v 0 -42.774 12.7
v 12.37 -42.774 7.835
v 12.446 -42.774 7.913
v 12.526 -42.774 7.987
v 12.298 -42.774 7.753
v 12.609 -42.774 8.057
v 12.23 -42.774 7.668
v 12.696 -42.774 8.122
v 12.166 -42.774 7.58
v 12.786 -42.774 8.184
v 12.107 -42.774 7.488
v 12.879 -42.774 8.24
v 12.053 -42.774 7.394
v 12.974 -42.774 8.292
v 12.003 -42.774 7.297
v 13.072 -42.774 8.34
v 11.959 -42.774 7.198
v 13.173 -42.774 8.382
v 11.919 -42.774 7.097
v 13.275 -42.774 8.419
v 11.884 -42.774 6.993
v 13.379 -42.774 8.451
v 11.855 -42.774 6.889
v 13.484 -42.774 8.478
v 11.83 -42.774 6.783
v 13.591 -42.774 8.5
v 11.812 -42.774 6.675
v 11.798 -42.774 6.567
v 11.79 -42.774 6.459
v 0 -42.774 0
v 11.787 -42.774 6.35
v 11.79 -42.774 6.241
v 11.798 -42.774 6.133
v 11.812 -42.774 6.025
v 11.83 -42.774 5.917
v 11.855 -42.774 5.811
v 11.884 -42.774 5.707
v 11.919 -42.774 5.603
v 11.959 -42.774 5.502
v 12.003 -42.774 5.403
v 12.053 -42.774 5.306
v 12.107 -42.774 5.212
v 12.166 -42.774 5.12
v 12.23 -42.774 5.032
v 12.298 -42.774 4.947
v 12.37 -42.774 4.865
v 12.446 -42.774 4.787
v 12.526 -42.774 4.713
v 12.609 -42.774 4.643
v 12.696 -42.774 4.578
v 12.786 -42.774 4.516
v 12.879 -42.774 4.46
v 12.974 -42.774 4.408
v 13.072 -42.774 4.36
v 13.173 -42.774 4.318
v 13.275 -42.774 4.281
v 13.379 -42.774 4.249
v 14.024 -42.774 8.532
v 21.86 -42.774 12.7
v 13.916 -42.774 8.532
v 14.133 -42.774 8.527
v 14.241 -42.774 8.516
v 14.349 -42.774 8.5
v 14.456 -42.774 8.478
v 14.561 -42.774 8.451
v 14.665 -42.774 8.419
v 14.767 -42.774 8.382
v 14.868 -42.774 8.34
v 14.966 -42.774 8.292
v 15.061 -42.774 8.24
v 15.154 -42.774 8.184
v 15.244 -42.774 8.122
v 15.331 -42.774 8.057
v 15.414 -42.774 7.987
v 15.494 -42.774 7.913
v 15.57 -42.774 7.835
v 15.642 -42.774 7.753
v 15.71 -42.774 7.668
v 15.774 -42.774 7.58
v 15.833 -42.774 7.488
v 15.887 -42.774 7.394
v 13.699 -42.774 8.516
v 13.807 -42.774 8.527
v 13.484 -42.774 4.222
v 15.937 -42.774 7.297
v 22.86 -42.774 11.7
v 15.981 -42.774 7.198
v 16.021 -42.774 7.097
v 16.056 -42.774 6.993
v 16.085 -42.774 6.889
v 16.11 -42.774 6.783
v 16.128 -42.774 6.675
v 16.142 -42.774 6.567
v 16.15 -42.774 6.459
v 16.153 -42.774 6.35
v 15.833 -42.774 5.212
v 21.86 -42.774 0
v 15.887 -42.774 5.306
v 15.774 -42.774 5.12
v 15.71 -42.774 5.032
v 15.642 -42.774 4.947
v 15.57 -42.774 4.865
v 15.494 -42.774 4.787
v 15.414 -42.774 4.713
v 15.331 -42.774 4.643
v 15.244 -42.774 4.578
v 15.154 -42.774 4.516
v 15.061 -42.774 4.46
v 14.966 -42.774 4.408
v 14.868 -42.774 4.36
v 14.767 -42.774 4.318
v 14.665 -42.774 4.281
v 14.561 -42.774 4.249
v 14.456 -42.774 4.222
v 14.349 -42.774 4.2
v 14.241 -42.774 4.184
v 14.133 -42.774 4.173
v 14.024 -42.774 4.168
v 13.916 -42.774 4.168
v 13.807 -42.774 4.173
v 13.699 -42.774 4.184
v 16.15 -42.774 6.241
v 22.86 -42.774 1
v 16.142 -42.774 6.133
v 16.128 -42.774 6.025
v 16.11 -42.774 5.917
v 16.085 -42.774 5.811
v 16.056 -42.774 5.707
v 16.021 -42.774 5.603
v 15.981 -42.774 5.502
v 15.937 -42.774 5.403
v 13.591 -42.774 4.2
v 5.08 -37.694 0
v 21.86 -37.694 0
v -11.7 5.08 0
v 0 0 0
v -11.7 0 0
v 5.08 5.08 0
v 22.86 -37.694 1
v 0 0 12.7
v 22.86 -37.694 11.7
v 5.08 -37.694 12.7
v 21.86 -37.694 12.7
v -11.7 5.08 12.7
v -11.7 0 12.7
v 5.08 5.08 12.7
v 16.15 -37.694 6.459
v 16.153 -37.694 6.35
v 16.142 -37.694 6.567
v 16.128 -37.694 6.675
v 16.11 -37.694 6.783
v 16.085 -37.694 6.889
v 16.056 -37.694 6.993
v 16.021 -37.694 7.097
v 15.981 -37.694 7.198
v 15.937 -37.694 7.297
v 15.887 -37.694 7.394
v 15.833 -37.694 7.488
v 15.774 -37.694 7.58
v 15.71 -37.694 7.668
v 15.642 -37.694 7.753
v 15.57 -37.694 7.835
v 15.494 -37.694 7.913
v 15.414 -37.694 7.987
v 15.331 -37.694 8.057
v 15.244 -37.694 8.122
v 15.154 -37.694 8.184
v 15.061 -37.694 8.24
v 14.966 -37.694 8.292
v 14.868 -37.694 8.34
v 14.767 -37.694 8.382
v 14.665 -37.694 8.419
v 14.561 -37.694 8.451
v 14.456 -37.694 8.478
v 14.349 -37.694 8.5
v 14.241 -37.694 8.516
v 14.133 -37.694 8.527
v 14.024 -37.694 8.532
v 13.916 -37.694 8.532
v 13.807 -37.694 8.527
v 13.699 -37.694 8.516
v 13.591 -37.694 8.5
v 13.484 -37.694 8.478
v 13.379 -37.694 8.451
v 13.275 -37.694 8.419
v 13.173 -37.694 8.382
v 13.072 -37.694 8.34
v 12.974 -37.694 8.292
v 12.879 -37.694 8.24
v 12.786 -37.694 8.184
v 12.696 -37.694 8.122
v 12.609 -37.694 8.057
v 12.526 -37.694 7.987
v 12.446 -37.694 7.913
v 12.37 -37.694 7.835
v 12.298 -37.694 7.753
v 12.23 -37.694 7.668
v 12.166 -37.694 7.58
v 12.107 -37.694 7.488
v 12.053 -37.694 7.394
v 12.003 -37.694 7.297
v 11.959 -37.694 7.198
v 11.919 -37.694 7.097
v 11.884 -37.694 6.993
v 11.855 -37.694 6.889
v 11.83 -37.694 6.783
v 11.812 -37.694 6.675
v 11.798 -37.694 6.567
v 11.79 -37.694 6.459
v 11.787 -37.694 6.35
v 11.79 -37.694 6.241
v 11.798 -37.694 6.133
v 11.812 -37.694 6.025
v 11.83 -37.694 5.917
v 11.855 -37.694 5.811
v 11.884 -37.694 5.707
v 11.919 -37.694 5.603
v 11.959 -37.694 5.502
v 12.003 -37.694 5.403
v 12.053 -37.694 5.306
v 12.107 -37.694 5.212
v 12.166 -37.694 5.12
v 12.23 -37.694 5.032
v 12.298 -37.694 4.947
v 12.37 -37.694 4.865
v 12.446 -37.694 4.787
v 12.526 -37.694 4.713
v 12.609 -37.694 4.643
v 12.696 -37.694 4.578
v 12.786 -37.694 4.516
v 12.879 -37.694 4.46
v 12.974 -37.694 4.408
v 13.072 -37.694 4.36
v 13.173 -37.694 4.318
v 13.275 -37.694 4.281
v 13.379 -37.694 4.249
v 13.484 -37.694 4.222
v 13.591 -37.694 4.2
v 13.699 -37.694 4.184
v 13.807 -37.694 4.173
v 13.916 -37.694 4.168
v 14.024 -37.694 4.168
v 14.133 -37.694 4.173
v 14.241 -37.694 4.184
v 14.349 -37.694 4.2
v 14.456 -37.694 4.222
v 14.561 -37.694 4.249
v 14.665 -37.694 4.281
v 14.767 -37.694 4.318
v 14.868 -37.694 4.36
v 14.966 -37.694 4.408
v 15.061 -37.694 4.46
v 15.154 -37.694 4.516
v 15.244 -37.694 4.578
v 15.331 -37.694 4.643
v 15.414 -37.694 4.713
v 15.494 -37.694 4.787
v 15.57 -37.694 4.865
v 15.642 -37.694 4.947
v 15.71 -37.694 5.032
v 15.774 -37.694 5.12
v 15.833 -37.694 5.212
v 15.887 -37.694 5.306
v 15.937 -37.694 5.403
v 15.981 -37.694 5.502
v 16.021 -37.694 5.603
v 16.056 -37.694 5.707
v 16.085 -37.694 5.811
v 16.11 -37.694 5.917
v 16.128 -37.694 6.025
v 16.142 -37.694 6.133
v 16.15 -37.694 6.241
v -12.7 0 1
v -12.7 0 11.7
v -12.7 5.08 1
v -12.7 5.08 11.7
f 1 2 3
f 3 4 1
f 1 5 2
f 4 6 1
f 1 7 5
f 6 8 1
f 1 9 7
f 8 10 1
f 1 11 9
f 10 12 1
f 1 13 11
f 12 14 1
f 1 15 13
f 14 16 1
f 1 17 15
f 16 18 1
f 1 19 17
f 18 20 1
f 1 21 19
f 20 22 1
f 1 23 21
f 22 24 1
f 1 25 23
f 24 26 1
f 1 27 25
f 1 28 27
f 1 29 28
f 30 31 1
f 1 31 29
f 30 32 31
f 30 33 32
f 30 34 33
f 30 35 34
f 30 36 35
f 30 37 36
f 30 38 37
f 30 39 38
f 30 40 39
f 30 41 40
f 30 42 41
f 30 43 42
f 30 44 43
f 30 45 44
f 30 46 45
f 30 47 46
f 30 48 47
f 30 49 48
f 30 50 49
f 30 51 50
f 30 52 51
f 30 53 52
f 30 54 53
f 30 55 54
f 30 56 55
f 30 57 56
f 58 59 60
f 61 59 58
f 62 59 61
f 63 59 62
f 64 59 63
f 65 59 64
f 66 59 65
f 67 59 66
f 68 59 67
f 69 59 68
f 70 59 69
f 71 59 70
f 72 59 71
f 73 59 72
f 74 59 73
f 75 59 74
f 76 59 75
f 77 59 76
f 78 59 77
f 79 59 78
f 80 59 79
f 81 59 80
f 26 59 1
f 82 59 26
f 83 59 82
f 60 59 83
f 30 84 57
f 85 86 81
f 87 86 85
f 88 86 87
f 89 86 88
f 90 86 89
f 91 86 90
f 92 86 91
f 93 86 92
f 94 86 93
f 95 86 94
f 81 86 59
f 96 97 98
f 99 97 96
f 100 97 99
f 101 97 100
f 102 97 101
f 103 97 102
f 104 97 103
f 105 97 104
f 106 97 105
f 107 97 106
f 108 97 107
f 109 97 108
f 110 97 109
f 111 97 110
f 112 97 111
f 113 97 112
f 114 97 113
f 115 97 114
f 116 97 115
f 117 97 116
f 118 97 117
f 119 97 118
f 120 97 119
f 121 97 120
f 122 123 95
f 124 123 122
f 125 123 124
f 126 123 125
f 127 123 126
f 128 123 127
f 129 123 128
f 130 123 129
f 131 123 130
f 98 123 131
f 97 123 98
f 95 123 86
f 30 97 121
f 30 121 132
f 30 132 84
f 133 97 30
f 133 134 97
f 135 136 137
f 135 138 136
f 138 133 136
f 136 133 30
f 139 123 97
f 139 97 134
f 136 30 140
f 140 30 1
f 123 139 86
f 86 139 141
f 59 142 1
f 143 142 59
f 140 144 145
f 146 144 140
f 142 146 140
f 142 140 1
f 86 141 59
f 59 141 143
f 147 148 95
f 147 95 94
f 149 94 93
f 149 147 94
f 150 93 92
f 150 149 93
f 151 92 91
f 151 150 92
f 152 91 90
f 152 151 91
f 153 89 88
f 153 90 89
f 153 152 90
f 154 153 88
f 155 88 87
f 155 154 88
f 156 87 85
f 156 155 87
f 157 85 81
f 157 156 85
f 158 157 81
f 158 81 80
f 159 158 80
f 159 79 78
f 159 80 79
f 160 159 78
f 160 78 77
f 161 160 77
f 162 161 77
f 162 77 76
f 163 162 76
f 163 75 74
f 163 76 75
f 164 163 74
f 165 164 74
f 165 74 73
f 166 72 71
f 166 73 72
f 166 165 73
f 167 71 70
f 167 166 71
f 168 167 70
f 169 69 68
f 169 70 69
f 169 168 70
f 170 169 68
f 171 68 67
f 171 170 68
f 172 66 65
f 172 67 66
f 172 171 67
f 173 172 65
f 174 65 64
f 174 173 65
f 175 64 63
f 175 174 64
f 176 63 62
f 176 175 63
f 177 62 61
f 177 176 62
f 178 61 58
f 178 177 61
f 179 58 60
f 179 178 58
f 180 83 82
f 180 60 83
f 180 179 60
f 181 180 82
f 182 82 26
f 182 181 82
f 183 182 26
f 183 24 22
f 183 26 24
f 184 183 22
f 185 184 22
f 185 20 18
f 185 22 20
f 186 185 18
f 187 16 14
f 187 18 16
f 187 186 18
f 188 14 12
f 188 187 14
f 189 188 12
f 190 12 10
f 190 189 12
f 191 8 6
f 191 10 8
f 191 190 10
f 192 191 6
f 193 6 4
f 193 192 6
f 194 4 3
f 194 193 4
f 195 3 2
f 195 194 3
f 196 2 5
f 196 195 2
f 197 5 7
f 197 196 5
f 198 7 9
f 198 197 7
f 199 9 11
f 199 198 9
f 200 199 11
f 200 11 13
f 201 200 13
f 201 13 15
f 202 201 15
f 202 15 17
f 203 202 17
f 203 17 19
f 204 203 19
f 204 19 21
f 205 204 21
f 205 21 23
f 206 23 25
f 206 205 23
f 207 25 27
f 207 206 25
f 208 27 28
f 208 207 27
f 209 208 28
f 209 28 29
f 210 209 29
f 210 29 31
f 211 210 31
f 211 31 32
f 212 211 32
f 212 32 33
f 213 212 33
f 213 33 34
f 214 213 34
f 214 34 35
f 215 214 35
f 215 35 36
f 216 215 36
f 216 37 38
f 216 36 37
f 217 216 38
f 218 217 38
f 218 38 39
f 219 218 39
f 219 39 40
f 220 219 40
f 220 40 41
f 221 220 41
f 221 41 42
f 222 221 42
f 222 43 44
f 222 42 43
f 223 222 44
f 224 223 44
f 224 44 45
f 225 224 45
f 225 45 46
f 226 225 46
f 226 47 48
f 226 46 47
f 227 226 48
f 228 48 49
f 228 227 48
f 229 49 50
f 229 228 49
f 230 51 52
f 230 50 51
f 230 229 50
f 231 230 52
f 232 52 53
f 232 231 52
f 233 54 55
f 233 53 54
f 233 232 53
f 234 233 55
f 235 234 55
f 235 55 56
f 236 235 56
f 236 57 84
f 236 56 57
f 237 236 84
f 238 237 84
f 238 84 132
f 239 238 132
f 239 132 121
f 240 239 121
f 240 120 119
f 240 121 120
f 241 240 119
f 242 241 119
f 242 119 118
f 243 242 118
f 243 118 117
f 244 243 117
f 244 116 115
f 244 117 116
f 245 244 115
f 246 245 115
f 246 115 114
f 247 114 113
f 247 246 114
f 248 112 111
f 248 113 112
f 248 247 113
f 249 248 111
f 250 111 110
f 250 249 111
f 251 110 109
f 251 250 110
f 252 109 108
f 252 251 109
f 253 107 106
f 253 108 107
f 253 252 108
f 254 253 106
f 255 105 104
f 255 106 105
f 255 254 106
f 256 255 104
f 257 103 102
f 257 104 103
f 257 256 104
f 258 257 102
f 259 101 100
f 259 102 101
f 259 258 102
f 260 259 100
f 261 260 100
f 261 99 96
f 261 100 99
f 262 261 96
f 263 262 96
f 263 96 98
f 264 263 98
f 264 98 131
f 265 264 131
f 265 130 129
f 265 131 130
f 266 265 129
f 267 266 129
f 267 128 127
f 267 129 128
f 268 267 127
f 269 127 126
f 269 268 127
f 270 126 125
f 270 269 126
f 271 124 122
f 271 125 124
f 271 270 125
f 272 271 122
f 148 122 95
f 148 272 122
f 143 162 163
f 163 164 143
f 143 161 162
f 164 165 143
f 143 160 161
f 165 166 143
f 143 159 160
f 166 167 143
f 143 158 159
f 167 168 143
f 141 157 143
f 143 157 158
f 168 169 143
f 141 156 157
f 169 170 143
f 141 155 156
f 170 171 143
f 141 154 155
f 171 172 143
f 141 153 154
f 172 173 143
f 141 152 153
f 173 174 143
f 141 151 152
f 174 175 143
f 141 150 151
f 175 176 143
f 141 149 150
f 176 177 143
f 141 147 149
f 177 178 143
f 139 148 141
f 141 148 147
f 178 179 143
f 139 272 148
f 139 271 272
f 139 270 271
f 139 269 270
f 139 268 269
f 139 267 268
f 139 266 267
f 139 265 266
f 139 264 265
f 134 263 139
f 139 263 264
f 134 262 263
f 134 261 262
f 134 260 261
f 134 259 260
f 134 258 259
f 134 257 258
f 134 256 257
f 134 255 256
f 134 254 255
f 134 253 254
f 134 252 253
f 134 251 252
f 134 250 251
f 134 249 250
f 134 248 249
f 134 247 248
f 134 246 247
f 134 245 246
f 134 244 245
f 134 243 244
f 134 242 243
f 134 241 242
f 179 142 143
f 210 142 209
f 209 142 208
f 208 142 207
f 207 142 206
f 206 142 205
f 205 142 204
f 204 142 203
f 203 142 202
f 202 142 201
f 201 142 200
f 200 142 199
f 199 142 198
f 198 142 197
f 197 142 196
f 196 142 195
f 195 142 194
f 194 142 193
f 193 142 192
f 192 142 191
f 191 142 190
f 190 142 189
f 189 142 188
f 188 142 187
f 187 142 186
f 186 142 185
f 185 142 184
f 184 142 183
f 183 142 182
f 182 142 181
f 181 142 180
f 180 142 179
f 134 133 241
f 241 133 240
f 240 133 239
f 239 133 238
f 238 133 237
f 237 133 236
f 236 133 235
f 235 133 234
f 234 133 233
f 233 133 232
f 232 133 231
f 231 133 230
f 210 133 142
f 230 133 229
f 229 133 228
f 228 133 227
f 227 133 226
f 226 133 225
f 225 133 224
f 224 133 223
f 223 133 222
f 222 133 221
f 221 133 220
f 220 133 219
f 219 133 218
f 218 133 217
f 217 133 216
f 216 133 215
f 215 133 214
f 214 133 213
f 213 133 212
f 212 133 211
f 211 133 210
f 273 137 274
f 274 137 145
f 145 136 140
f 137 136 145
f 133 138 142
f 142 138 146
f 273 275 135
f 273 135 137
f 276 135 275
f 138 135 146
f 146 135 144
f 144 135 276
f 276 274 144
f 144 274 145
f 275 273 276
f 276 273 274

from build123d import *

# Parameters (mm, degrees)
PAD_DEPTH    = 12.7
SKETCH001_R  = 2.182812
POCKET_DEPTH = 42.7746
CHAMFER_SIZE = 1


with BuildPart() as part:
    # Sketch → Pad (new body)
    with BuildSketch(Plane.XY):
        Polygon((0, -42.7736), (22.86, -42.7736), (22.86, -37.6936), (5.08, -37.6936), (5.08, 5.08), (-12.7, 5.08), (-12.7, 0), (0, 0), align=None)
    extrude(amount=PAD_DEPTH)

    # Sketch001 → Pocket (cut, through all)
    with BuildSketch(Plane.XZ):
        with Locations((13.97, 6.35)):
            Circle(SKETCH001_R)
    extrude(amount=POCKET_DEPTH, mode=Mode.SUBTRACT)

    # Chamfer
    chamfer_edges = [part.edges().sort_by_distance(p)[0] for p in [
        (22.86, -40.2336, 0),
        (22.86, -40.2336, 12.7),
        (-12.7, 2.54, 0),
        (-12.7, 2.54, 12.7),
    ]]
    chamfer(chamfer_edges, length=CHAMFER_SIZE)


solid = part.part
